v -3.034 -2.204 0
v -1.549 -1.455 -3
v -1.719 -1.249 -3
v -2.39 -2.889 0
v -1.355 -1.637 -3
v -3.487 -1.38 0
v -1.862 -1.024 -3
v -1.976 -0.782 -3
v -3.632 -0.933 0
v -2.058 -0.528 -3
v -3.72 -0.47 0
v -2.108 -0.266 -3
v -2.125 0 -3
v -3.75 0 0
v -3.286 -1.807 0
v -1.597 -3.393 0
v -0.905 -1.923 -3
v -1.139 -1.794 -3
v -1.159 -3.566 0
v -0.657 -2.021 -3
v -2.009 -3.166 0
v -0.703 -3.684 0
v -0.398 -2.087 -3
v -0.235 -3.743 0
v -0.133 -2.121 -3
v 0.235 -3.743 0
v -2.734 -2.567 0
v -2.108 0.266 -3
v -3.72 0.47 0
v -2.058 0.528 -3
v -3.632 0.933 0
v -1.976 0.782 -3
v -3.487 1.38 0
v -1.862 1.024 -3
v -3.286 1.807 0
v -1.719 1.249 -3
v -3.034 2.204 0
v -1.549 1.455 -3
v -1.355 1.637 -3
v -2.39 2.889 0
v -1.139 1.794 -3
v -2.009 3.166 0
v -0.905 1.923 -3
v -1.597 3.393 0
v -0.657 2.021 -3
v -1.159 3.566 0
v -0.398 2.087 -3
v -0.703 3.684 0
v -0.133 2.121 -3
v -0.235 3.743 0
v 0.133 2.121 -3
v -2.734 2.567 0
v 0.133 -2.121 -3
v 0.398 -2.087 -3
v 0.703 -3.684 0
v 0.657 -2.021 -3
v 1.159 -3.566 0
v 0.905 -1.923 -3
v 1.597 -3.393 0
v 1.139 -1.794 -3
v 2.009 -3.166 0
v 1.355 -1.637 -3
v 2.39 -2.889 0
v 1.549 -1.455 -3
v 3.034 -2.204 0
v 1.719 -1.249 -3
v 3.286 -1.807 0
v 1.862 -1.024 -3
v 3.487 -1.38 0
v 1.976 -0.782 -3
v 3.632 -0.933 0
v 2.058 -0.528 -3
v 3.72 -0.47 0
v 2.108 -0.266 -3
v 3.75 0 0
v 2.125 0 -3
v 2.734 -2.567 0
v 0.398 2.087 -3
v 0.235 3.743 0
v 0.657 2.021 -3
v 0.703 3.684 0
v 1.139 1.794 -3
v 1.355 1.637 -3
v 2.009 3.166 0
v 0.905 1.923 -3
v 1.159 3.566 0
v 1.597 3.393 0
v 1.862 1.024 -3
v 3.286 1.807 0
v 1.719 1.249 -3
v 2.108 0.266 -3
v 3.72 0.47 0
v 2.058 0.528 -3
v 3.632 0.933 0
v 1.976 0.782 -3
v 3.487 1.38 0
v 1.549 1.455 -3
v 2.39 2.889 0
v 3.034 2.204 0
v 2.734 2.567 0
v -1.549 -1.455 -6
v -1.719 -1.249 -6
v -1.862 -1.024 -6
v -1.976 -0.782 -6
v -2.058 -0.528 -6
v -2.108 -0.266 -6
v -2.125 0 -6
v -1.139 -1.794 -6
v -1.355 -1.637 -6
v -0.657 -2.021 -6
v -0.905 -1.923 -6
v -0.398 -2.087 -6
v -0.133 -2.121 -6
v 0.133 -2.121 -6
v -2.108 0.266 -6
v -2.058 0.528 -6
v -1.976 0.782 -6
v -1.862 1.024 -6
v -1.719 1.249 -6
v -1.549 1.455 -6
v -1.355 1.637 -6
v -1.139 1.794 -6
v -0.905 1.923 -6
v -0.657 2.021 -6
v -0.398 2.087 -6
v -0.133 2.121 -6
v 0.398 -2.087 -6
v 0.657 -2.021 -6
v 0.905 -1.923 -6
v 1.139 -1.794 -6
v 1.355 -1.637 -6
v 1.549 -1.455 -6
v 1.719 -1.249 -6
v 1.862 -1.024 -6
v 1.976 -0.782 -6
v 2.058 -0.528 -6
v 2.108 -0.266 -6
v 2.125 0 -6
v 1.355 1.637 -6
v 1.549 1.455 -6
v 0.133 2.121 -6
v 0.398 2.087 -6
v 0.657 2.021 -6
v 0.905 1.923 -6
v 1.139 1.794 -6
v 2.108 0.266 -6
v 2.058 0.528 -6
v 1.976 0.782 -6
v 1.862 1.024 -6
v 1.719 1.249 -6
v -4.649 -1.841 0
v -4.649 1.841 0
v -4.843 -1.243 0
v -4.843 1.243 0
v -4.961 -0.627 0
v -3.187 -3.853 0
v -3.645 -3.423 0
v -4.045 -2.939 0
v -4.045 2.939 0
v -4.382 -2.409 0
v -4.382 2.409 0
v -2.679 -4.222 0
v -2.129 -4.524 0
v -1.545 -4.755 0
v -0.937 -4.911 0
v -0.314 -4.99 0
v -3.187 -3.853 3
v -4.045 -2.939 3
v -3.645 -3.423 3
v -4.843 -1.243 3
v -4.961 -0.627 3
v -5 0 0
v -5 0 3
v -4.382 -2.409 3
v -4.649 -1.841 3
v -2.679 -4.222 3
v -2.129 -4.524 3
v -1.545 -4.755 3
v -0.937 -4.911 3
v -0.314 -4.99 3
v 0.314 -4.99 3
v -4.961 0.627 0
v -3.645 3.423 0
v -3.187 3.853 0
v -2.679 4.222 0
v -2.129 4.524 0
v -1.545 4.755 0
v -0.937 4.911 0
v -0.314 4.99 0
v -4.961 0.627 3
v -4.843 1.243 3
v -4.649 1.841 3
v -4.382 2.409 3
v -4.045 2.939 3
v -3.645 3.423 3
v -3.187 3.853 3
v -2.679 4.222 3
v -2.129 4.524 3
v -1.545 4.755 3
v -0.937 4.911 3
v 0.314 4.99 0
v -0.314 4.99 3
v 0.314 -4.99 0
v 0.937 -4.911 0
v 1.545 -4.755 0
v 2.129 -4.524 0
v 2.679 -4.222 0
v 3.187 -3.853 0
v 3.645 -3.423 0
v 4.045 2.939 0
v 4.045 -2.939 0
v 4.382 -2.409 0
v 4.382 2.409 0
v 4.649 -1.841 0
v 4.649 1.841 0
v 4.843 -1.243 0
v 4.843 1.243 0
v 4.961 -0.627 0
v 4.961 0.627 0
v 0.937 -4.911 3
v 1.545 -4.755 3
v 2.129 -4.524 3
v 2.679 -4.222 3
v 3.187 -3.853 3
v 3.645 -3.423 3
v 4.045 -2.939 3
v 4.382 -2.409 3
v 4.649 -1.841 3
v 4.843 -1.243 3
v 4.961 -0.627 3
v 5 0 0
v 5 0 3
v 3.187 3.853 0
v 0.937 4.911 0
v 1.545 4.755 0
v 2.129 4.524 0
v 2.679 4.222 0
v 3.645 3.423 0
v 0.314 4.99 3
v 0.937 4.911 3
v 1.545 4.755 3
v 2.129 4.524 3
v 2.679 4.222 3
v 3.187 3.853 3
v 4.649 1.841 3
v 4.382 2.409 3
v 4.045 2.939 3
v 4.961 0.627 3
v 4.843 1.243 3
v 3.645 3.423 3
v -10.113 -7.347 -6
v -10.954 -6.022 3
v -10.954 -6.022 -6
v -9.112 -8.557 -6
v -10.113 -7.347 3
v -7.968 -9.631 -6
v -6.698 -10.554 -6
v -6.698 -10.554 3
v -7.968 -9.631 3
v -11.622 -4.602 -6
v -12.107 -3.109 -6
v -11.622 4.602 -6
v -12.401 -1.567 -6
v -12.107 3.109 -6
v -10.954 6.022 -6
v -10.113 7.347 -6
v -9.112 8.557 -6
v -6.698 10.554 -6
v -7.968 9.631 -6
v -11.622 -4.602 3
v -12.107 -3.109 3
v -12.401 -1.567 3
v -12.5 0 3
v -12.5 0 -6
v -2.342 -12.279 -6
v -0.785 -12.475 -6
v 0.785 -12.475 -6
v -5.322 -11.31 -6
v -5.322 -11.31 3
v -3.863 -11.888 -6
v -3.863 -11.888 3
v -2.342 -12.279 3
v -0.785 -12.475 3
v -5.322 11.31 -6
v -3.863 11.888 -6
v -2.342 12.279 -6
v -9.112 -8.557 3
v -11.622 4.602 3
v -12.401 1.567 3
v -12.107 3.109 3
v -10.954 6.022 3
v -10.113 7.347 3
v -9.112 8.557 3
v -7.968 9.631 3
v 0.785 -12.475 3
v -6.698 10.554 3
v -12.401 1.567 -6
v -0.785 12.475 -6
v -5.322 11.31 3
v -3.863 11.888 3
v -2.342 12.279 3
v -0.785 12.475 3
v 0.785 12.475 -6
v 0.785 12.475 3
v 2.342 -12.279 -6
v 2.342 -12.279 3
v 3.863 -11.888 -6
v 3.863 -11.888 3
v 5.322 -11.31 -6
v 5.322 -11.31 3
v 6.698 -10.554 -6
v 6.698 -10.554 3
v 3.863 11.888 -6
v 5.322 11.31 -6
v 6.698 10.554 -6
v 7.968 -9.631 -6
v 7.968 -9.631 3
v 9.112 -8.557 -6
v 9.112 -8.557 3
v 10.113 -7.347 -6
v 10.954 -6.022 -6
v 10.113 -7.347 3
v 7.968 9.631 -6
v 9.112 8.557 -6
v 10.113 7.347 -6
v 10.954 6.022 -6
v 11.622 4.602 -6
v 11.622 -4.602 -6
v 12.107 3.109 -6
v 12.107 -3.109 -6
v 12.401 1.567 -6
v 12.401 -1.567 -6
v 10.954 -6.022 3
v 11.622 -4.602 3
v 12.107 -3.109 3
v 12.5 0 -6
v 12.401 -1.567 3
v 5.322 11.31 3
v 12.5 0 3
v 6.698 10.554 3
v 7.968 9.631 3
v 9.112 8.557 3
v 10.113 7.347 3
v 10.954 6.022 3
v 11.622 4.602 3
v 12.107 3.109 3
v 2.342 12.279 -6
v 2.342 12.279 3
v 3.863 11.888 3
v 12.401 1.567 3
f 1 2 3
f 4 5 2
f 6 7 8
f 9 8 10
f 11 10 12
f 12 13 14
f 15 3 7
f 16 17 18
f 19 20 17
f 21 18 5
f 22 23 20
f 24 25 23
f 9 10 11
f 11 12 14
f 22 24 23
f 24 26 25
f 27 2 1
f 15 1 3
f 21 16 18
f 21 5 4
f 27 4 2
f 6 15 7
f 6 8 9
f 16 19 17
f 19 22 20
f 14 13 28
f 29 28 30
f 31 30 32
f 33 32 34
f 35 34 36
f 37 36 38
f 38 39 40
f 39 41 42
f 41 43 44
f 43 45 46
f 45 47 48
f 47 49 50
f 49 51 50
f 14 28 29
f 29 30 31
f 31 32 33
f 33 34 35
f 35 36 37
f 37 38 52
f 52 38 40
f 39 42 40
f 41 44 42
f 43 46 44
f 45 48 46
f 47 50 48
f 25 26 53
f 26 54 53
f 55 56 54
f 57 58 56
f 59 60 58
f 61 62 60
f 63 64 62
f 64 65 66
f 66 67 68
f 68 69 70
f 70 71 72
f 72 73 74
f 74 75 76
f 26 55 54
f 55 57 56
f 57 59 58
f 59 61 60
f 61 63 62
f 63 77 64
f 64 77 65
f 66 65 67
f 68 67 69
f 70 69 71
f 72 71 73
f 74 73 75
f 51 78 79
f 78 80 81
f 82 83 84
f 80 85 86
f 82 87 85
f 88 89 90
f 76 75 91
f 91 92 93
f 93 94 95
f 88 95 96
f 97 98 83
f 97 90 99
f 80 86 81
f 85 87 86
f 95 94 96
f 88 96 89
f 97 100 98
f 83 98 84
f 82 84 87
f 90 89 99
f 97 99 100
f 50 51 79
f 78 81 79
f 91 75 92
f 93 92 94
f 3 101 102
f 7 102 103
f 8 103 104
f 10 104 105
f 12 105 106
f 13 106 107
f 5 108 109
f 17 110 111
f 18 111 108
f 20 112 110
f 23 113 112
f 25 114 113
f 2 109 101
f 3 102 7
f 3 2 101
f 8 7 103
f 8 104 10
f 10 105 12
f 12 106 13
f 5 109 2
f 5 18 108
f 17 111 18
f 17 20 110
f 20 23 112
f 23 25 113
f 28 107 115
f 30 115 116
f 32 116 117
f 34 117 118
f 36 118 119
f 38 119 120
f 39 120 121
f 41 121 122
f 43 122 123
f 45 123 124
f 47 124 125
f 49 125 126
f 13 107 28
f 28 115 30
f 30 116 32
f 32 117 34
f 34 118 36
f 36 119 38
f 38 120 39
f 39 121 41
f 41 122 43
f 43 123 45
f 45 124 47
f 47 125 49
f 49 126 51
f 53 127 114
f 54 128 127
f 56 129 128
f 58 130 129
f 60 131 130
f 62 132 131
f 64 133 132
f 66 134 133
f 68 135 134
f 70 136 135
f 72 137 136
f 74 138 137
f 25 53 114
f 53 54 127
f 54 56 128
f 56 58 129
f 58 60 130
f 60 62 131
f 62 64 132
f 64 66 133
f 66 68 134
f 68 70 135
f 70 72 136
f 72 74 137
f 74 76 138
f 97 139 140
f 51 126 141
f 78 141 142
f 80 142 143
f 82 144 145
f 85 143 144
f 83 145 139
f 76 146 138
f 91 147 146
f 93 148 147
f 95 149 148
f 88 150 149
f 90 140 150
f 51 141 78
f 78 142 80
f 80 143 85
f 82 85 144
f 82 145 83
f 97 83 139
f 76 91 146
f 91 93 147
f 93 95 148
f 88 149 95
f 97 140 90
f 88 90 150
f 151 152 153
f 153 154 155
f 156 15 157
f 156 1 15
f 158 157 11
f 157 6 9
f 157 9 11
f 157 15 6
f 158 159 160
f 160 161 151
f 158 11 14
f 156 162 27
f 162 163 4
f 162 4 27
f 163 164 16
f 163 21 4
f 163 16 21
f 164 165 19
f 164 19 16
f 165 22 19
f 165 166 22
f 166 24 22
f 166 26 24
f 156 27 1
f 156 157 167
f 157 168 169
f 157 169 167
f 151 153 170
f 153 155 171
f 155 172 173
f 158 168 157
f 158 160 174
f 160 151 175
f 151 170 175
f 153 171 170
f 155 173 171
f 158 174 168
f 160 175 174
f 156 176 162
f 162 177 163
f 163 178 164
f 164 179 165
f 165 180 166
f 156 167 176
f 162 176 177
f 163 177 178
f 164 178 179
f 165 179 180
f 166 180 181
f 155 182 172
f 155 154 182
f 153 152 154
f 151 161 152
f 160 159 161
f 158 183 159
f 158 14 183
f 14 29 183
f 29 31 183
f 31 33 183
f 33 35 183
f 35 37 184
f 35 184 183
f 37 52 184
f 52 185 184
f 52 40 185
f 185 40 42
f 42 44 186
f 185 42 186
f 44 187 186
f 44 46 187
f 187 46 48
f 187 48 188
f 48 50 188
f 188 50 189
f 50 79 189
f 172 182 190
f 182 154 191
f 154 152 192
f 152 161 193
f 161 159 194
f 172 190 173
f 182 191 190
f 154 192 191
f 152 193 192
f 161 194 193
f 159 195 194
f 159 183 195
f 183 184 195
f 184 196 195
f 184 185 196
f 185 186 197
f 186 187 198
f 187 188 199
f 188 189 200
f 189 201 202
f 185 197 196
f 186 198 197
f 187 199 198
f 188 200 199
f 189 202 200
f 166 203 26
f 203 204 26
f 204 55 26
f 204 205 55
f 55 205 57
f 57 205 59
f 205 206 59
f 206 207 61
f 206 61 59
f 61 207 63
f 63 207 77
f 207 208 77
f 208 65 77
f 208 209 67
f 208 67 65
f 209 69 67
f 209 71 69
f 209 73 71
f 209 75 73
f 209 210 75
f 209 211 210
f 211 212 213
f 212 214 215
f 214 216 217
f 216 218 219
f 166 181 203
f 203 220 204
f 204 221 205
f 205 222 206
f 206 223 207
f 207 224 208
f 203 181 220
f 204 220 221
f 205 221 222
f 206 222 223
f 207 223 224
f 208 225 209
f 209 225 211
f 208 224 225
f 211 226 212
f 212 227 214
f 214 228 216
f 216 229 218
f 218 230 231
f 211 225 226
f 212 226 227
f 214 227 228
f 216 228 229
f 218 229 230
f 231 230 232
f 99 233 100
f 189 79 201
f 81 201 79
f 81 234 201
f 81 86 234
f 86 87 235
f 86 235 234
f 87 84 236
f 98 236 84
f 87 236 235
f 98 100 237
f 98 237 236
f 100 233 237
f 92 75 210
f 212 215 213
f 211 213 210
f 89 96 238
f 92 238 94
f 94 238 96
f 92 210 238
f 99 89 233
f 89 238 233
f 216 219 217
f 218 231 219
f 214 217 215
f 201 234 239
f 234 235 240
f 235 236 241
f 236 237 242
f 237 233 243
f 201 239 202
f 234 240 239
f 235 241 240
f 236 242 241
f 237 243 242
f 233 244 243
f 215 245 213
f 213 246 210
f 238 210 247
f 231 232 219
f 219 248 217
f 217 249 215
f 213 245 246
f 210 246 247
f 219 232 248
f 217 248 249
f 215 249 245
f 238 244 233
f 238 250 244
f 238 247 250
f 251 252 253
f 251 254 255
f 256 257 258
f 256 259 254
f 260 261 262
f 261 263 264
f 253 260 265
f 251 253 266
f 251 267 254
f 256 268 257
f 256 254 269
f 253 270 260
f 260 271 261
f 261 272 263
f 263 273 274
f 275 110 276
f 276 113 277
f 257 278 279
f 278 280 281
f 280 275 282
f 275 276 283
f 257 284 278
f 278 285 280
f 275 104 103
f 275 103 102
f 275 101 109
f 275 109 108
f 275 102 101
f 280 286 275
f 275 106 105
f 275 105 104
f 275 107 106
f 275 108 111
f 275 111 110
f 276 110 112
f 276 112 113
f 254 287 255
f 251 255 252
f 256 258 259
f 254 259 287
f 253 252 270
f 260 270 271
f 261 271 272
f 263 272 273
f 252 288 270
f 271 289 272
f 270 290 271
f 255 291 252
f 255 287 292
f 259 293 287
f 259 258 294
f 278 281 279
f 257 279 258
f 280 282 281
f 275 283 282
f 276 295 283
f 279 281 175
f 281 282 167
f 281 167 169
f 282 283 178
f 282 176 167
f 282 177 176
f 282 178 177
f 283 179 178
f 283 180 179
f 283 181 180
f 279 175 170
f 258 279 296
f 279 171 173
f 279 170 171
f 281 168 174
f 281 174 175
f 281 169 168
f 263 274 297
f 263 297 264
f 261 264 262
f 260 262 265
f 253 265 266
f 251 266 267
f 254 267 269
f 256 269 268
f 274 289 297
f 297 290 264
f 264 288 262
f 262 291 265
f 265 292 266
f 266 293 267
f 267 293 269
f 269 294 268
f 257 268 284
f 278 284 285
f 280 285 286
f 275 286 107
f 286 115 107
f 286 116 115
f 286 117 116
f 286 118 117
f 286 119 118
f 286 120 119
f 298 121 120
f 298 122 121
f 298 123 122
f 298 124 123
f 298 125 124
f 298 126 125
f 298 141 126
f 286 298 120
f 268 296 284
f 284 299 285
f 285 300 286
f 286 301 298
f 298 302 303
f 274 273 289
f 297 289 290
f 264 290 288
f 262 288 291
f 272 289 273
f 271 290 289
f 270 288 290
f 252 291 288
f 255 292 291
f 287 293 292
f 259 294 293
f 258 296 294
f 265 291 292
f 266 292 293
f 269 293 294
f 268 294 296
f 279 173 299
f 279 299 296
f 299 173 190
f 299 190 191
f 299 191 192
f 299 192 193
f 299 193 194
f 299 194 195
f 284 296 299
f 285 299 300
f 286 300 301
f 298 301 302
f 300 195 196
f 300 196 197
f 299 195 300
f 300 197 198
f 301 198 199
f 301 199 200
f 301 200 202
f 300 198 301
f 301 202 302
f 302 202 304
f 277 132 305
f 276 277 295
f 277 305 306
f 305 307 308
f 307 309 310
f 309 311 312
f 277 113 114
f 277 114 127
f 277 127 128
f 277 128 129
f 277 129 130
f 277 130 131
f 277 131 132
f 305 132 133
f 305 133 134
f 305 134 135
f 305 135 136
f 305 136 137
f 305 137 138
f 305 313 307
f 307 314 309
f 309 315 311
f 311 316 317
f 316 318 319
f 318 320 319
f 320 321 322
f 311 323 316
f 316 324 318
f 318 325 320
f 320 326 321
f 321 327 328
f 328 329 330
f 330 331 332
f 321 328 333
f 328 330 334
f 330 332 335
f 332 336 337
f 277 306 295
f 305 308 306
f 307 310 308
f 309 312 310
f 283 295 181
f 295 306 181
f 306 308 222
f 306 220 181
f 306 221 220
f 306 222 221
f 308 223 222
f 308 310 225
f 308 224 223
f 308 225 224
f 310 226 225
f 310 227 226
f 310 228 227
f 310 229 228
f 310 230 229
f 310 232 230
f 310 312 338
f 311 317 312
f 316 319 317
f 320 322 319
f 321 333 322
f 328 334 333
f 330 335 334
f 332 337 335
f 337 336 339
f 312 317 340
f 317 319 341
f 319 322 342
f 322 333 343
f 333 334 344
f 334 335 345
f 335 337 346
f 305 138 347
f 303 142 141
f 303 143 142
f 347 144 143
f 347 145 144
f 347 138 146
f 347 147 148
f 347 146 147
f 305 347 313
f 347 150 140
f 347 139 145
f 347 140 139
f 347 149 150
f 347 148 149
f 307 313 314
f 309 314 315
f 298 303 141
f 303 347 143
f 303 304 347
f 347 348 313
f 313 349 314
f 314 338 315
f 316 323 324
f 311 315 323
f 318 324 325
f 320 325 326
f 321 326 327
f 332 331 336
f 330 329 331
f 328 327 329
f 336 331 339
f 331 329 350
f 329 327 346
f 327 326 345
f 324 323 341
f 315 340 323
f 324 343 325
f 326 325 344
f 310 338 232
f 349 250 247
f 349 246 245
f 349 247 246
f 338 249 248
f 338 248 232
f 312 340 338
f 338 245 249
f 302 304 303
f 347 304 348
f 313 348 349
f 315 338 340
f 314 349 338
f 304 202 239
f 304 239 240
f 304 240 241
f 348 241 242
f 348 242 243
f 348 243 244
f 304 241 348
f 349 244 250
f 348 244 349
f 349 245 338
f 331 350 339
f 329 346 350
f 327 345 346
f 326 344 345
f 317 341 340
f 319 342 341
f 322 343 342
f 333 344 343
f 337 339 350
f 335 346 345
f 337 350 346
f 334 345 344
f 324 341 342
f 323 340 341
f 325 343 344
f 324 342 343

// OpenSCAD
$fn = 50;

difference() {
	union() {
		translate(v = [0, 0, -6.0]) {
			cylinder(h = 9, r = 12.5);
		}
	}
	union() {
		translate(v = [0, 0, 0]) {
			rotate(a = [0, 0, 0]) {
				difference() {
					union() {
						translate(v = [0, 0, -9.0]) {
							cylinder(h = 9, r = 2.0);
						}
						translate(v = [0, 0, -3]) {
							cylinder(h = 3, r1 = 2.125, r2 = 3.75);
						}
						translate(v = [0, 0, -9.0]) {
							cylinder(h = 9, r = 2.125);
						}
						translate(v = [0, 0, -9.0]) {
							cylinder(h = 9, r = 2.0);
						}
					}
					union();
				}
			}
		}
		#cylinder(h = 3, r = 5.0);
	}
}
